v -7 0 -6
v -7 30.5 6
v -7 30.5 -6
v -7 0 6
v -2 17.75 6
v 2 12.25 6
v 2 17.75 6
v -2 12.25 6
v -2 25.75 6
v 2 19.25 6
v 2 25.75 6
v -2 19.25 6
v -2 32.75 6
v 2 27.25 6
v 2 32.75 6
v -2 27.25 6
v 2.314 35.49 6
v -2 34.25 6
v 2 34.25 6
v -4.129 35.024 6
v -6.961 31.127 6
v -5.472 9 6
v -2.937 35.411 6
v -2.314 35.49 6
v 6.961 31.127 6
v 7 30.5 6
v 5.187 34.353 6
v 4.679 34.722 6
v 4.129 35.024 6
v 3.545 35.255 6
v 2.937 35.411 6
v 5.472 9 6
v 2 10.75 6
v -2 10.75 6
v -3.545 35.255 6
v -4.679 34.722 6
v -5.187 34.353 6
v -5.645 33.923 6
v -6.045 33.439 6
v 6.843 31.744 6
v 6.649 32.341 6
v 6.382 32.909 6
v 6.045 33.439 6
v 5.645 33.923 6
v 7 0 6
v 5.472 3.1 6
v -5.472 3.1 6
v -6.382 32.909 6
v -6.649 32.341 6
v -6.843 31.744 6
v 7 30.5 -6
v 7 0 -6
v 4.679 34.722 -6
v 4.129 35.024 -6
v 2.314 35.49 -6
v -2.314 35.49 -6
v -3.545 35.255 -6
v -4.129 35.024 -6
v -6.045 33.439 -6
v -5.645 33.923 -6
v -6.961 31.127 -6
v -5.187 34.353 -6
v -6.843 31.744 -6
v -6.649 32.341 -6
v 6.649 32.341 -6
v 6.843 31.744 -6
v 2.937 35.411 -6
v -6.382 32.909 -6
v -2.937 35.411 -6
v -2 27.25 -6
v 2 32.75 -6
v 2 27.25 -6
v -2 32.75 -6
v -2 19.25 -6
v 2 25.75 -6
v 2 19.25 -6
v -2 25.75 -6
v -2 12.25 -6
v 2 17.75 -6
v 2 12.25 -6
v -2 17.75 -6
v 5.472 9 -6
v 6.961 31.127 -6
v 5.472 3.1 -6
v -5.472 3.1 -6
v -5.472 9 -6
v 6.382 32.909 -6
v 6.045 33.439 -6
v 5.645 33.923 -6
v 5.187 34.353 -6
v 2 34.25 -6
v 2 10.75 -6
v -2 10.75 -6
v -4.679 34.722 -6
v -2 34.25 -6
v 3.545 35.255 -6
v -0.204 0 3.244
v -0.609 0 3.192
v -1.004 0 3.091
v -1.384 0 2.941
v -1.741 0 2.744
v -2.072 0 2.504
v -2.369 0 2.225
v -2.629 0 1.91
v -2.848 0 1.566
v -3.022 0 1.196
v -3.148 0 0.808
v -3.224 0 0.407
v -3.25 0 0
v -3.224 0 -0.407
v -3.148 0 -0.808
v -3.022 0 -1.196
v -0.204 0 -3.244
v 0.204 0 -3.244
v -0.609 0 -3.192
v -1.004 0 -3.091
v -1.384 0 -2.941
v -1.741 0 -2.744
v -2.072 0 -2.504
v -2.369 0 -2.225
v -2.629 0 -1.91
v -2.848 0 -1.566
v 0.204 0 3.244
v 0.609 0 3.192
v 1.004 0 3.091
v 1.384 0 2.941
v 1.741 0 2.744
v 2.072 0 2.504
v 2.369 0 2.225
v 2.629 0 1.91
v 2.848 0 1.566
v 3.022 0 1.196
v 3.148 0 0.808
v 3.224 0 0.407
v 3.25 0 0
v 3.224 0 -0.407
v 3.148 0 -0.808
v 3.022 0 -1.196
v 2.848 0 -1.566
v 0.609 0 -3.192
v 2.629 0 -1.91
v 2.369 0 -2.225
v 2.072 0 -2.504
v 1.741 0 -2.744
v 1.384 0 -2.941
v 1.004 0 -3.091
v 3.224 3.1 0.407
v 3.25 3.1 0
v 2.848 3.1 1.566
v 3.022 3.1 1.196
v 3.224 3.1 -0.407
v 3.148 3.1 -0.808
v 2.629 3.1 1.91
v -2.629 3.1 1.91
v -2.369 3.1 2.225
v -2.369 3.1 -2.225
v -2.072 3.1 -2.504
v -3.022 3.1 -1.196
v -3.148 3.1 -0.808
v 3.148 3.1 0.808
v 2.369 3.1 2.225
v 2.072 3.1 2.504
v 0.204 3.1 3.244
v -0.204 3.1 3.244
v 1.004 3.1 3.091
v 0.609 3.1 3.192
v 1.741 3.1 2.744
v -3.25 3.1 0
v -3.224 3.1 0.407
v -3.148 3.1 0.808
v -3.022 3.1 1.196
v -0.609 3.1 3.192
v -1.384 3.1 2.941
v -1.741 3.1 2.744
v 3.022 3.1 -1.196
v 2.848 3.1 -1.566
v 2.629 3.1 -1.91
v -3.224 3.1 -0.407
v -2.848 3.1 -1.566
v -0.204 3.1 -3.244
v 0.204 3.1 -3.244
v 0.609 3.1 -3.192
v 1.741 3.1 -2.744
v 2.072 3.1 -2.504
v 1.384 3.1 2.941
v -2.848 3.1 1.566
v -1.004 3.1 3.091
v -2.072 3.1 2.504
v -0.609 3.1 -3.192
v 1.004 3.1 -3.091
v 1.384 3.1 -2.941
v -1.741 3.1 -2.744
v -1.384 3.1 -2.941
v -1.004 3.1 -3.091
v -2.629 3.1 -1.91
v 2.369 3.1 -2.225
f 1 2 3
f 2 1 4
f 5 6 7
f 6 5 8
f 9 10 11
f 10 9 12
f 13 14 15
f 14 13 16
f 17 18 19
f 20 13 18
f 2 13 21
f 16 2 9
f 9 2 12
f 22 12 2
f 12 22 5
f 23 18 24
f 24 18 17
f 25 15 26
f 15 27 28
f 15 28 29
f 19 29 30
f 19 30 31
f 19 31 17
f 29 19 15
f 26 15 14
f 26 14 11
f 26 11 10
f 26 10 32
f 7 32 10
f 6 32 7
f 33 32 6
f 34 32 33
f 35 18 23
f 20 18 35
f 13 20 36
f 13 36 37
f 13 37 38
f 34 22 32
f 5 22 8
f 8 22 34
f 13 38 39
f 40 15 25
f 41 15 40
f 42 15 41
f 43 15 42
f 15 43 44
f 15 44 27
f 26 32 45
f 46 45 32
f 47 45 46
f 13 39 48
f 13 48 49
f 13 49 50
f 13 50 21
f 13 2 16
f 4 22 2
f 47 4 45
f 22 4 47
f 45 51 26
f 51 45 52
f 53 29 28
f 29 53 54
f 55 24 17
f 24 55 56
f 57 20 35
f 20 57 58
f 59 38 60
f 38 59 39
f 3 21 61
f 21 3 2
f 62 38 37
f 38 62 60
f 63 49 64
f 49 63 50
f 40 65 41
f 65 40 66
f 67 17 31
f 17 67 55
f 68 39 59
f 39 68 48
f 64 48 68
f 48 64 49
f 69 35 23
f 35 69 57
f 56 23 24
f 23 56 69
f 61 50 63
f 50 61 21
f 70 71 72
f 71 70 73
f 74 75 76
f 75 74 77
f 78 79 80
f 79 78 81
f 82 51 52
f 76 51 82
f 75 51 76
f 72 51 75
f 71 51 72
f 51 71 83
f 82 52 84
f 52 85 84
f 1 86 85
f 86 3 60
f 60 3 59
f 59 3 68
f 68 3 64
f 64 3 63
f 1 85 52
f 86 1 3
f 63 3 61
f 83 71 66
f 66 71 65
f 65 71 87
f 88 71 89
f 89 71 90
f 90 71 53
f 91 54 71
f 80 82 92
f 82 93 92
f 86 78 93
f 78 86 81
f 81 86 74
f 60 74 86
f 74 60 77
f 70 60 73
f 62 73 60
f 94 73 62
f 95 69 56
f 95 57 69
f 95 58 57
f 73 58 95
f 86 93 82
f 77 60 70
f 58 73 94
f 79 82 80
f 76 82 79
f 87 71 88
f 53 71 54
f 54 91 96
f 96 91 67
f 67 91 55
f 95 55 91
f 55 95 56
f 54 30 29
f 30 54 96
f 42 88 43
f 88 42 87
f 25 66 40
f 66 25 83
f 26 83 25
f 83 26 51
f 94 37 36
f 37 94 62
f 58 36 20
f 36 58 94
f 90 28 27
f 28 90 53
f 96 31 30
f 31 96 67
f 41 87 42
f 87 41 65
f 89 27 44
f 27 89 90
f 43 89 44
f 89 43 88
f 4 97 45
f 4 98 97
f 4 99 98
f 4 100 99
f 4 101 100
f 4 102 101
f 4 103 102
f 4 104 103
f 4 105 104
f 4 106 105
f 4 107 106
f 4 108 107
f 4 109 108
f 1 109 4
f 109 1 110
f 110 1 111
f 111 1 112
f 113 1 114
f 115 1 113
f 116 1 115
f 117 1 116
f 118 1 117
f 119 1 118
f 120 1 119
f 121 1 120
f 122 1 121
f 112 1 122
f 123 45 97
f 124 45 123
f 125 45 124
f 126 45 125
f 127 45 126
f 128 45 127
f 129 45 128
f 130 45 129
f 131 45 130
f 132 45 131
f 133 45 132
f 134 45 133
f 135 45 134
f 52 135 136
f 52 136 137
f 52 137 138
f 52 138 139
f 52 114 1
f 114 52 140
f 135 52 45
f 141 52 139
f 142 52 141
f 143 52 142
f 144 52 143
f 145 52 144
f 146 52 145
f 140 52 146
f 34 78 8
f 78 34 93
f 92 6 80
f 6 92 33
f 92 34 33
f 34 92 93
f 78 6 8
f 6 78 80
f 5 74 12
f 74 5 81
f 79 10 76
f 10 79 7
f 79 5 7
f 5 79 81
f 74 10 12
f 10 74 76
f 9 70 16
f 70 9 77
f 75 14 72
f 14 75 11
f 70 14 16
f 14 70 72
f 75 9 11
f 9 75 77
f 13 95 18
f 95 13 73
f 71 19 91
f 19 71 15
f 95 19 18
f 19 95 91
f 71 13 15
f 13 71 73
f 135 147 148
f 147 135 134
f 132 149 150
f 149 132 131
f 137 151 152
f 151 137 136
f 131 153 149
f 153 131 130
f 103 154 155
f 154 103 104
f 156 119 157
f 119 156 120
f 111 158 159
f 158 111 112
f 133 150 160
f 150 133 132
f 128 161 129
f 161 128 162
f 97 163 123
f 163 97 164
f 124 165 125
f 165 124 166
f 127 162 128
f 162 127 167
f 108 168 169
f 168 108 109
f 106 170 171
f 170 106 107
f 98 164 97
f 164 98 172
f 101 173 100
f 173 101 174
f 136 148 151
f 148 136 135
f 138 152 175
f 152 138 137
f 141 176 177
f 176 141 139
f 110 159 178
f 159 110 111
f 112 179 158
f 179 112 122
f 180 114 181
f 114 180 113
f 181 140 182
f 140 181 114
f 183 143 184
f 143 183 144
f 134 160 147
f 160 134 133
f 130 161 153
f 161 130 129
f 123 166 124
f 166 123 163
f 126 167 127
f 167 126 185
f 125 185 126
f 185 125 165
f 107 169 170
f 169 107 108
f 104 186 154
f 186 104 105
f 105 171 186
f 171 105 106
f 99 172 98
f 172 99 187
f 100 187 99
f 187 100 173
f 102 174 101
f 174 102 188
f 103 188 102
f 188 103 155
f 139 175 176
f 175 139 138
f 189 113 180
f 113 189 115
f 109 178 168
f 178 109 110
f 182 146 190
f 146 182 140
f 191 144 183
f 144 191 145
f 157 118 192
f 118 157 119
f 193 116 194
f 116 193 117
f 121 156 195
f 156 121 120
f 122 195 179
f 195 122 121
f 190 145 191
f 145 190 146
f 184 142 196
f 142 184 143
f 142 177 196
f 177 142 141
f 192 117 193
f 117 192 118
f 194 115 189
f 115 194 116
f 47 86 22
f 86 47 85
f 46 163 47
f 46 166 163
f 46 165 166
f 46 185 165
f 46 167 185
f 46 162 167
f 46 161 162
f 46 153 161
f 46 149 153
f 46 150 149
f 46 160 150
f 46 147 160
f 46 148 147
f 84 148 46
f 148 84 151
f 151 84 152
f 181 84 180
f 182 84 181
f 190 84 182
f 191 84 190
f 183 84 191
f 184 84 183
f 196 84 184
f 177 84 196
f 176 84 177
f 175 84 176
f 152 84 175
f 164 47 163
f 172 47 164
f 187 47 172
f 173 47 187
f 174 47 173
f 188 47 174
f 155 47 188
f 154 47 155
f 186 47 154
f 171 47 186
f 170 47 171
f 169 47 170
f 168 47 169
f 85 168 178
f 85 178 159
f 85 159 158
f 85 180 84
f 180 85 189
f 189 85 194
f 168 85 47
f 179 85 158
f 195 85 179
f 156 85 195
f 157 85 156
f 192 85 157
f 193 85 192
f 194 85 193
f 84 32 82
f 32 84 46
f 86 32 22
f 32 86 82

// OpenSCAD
$fn = 50;


difference() {
	union() {
		translate(v = [0, 21.0000000000, -6.0000000000]) {
			rotate(a = [0, 0, 0]) {
				hull() {
					translate(v = [-2.0000000000, 9.5000000000, 0]) {
						rotate(a = [0, 0, 0]) {
							translate(v = [0, 0, 0]) {
								rotate(a = [0, 0, 0]) {
									cylinder(h = 12, r = 5);
								}
							}
						}
					}
					translate(v = [2.0000000000, 9.5000000000, 0]) {
						rotate(a = [0, 0, 0]) {
							translate(v = [0, 0, 0]) {
								rotate(a = [0, 0, 0]) {
									cylinder(h = 12, r = 5);
								}
							}
						}
					}
					translate(v = [-2.0000000000, -9.5000000000, 0]) {
						rotate(a = [0, 0, 0]) {
							translate(v = [0, 0, 0]) {
								rotate(a = [0, 0, 0]) {
									cylinder(h = 12, r = 5);
								}
							}
						}
					}
					translate(v = [2.0000000000, -9.5000000000, 0]) {
						rotate(a = [0, 0, 0]) {
							translate(v = [0, 0, 0]) {
								rotate(a = [0, 0, 0]) {
									cylinder(h = 12, r = 5);
								}
							}
						}
					}
				}
			}
		}
		translate(v = [-7.0000000000, 0, -6.0000000000]) {
			rotate(a = [0, 0, 0]) {
				cube(size = [14, 13.5000000000, 12]);
			}
		}
	}
	union() {
		translate(v = [-2.0000000000, 10.7500000000, -50]) {
			rotate(a = [0, 0, 0]) {
				cube(size = [4, 1.5000000000, 100]);
			}
		}
		translate(v = [-2.0000000000, 17.7500000000, -50]) {
			rotate(a = [0, 0, 0]) {
				cube(size = [4, 1.5000000000, 100]);
			}
		}
		translate(v = [-2.0000000000, 25.7500000000, -50]) {
			rotate(a = [0, 0, 0]) {
				cube(size = [4, 1.5000000000, 100]);
			}
		}
		translate(v = [-2.0000000000, 32.7500000000, -50]) {
			rotate(a = [0, 0, 0]) {
				cube(size = [4, 1.5000000000, 100]);
			}
		}
		translate(v = [0.0000000000, 8, 0]) {
			rotate(a = [90, 0, 0]) {
				cylinder(h = 8, r = 3.2500000000);
			}
		}
		translate(v = [-5.4716204506, 9, -25]) {
			rotate(a = [90, 0, 0]) {
				cube(size = [10.9432409012, 100, 5.9000000000]);
			}
		}
	}
}
